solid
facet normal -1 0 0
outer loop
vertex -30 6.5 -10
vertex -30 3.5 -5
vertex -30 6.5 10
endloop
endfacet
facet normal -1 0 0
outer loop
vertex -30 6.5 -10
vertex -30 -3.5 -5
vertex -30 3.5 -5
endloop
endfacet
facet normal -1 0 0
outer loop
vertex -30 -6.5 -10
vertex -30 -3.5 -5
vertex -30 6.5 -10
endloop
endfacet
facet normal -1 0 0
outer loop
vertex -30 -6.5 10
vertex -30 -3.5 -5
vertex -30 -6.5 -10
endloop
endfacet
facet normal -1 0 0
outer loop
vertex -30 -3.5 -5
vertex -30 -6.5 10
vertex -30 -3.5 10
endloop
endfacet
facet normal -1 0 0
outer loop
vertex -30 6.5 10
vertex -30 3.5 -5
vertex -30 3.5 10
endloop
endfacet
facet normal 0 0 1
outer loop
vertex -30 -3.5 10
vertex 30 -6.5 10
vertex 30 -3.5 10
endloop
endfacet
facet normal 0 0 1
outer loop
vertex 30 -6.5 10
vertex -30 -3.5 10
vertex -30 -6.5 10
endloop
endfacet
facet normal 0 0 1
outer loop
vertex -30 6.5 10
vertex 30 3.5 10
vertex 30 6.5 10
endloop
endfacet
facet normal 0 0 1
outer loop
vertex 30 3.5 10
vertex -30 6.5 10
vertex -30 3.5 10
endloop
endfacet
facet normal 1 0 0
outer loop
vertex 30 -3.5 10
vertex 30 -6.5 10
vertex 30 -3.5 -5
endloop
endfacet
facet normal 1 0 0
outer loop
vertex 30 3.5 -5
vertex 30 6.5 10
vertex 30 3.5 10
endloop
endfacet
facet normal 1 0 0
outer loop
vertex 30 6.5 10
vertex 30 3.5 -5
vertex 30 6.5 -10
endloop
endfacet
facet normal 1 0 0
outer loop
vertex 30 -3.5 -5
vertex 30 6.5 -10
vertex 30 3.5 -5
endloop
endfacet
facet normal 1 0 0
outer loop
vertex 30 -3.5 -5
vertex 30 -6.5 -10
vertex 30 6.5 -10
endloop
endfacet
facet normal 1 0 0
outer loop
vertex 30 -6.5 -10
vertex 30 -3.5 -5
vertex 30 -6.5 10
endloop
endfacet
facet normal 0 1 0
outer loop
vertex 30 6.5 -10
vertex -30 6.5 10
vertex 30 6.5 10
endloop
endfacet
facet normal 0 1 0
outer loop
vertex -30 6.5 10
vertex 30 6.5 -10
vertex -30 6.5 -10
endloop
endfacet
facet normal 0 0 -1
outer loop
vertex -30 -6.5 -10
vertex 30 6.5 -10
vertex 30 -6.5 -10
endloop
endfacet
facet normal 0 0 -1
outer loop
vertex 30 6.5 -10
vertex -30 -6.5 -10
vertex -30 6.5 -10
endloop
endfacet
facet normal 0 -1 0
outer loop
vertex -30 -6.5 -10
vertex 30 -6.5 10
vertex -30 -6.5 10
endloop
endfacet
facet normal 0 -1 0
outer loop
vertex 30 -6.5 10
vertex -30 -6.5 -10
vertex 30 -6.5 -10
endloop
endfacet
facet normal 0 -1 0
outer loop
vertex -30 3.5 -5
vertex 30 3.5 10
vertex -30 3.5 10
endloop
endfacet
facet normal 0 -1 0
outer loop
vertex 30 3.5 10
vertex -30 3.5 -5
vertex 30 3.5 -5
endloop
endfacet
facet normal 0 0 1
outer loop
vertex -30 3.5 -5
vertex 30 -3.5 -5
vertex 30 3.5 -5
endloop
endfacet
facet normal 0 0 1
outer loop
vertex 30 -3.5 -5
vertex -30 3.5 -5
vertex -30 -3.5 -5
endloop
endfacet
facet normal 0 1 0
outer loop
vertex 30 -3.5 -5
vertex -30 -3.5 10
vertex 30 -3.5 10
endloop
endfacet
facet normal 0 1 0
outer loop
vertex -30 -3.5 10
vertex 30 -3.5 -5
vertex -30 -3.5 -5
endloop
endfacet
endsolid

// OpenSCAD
// Halter

difference() {
cube([60,3+7+3,20],true);
translate([0,0,5])
cube([70,7,20],true);
}
/*

$fn=3;

linear_extrude(80)
difference() {
     m1();
     m2();
}

module m1() {
     circle(3);
     translate([33,0,0])
     circle(3);
     translate([33+14.5,10,0])
     circle(3);
     translate([0,23.5,0]) {
         translate([8.5-1,0,0])
         rotate(72.5)
         square([50,6], true);
         translate([24.5+1,0,0])
         rotate(-72.5)
         square([50,6], true);
     }
     translate([33/2,50-2.3,0])
     circle(4.3);
     translate([33/2,28,0])
     difference() {
         scale([3,10,1])
         circle(2);
         scale([3,10,1])
         circle(1);
         translate([0,-10,0])
         square([50,16+20], true);
     }

     translate([40-0.9,(5.5+6)/2+3-0.2,0])
     rotate(17.5/2)
     difference() {
         circle(5.5+6);
         circle(5.5);
         translate([0,10,0])
         square([30,20], true);
     }
}


module m2() {
     translate([40-0.9,(5.5+6)/2+3-0.2,0])
     rotate(17.5/2)
     difference() {
         circle(5.5+9);
         circle(5.5+6);
         translate([0,10,0])
         square([30,20], true);
     }
}

*/
